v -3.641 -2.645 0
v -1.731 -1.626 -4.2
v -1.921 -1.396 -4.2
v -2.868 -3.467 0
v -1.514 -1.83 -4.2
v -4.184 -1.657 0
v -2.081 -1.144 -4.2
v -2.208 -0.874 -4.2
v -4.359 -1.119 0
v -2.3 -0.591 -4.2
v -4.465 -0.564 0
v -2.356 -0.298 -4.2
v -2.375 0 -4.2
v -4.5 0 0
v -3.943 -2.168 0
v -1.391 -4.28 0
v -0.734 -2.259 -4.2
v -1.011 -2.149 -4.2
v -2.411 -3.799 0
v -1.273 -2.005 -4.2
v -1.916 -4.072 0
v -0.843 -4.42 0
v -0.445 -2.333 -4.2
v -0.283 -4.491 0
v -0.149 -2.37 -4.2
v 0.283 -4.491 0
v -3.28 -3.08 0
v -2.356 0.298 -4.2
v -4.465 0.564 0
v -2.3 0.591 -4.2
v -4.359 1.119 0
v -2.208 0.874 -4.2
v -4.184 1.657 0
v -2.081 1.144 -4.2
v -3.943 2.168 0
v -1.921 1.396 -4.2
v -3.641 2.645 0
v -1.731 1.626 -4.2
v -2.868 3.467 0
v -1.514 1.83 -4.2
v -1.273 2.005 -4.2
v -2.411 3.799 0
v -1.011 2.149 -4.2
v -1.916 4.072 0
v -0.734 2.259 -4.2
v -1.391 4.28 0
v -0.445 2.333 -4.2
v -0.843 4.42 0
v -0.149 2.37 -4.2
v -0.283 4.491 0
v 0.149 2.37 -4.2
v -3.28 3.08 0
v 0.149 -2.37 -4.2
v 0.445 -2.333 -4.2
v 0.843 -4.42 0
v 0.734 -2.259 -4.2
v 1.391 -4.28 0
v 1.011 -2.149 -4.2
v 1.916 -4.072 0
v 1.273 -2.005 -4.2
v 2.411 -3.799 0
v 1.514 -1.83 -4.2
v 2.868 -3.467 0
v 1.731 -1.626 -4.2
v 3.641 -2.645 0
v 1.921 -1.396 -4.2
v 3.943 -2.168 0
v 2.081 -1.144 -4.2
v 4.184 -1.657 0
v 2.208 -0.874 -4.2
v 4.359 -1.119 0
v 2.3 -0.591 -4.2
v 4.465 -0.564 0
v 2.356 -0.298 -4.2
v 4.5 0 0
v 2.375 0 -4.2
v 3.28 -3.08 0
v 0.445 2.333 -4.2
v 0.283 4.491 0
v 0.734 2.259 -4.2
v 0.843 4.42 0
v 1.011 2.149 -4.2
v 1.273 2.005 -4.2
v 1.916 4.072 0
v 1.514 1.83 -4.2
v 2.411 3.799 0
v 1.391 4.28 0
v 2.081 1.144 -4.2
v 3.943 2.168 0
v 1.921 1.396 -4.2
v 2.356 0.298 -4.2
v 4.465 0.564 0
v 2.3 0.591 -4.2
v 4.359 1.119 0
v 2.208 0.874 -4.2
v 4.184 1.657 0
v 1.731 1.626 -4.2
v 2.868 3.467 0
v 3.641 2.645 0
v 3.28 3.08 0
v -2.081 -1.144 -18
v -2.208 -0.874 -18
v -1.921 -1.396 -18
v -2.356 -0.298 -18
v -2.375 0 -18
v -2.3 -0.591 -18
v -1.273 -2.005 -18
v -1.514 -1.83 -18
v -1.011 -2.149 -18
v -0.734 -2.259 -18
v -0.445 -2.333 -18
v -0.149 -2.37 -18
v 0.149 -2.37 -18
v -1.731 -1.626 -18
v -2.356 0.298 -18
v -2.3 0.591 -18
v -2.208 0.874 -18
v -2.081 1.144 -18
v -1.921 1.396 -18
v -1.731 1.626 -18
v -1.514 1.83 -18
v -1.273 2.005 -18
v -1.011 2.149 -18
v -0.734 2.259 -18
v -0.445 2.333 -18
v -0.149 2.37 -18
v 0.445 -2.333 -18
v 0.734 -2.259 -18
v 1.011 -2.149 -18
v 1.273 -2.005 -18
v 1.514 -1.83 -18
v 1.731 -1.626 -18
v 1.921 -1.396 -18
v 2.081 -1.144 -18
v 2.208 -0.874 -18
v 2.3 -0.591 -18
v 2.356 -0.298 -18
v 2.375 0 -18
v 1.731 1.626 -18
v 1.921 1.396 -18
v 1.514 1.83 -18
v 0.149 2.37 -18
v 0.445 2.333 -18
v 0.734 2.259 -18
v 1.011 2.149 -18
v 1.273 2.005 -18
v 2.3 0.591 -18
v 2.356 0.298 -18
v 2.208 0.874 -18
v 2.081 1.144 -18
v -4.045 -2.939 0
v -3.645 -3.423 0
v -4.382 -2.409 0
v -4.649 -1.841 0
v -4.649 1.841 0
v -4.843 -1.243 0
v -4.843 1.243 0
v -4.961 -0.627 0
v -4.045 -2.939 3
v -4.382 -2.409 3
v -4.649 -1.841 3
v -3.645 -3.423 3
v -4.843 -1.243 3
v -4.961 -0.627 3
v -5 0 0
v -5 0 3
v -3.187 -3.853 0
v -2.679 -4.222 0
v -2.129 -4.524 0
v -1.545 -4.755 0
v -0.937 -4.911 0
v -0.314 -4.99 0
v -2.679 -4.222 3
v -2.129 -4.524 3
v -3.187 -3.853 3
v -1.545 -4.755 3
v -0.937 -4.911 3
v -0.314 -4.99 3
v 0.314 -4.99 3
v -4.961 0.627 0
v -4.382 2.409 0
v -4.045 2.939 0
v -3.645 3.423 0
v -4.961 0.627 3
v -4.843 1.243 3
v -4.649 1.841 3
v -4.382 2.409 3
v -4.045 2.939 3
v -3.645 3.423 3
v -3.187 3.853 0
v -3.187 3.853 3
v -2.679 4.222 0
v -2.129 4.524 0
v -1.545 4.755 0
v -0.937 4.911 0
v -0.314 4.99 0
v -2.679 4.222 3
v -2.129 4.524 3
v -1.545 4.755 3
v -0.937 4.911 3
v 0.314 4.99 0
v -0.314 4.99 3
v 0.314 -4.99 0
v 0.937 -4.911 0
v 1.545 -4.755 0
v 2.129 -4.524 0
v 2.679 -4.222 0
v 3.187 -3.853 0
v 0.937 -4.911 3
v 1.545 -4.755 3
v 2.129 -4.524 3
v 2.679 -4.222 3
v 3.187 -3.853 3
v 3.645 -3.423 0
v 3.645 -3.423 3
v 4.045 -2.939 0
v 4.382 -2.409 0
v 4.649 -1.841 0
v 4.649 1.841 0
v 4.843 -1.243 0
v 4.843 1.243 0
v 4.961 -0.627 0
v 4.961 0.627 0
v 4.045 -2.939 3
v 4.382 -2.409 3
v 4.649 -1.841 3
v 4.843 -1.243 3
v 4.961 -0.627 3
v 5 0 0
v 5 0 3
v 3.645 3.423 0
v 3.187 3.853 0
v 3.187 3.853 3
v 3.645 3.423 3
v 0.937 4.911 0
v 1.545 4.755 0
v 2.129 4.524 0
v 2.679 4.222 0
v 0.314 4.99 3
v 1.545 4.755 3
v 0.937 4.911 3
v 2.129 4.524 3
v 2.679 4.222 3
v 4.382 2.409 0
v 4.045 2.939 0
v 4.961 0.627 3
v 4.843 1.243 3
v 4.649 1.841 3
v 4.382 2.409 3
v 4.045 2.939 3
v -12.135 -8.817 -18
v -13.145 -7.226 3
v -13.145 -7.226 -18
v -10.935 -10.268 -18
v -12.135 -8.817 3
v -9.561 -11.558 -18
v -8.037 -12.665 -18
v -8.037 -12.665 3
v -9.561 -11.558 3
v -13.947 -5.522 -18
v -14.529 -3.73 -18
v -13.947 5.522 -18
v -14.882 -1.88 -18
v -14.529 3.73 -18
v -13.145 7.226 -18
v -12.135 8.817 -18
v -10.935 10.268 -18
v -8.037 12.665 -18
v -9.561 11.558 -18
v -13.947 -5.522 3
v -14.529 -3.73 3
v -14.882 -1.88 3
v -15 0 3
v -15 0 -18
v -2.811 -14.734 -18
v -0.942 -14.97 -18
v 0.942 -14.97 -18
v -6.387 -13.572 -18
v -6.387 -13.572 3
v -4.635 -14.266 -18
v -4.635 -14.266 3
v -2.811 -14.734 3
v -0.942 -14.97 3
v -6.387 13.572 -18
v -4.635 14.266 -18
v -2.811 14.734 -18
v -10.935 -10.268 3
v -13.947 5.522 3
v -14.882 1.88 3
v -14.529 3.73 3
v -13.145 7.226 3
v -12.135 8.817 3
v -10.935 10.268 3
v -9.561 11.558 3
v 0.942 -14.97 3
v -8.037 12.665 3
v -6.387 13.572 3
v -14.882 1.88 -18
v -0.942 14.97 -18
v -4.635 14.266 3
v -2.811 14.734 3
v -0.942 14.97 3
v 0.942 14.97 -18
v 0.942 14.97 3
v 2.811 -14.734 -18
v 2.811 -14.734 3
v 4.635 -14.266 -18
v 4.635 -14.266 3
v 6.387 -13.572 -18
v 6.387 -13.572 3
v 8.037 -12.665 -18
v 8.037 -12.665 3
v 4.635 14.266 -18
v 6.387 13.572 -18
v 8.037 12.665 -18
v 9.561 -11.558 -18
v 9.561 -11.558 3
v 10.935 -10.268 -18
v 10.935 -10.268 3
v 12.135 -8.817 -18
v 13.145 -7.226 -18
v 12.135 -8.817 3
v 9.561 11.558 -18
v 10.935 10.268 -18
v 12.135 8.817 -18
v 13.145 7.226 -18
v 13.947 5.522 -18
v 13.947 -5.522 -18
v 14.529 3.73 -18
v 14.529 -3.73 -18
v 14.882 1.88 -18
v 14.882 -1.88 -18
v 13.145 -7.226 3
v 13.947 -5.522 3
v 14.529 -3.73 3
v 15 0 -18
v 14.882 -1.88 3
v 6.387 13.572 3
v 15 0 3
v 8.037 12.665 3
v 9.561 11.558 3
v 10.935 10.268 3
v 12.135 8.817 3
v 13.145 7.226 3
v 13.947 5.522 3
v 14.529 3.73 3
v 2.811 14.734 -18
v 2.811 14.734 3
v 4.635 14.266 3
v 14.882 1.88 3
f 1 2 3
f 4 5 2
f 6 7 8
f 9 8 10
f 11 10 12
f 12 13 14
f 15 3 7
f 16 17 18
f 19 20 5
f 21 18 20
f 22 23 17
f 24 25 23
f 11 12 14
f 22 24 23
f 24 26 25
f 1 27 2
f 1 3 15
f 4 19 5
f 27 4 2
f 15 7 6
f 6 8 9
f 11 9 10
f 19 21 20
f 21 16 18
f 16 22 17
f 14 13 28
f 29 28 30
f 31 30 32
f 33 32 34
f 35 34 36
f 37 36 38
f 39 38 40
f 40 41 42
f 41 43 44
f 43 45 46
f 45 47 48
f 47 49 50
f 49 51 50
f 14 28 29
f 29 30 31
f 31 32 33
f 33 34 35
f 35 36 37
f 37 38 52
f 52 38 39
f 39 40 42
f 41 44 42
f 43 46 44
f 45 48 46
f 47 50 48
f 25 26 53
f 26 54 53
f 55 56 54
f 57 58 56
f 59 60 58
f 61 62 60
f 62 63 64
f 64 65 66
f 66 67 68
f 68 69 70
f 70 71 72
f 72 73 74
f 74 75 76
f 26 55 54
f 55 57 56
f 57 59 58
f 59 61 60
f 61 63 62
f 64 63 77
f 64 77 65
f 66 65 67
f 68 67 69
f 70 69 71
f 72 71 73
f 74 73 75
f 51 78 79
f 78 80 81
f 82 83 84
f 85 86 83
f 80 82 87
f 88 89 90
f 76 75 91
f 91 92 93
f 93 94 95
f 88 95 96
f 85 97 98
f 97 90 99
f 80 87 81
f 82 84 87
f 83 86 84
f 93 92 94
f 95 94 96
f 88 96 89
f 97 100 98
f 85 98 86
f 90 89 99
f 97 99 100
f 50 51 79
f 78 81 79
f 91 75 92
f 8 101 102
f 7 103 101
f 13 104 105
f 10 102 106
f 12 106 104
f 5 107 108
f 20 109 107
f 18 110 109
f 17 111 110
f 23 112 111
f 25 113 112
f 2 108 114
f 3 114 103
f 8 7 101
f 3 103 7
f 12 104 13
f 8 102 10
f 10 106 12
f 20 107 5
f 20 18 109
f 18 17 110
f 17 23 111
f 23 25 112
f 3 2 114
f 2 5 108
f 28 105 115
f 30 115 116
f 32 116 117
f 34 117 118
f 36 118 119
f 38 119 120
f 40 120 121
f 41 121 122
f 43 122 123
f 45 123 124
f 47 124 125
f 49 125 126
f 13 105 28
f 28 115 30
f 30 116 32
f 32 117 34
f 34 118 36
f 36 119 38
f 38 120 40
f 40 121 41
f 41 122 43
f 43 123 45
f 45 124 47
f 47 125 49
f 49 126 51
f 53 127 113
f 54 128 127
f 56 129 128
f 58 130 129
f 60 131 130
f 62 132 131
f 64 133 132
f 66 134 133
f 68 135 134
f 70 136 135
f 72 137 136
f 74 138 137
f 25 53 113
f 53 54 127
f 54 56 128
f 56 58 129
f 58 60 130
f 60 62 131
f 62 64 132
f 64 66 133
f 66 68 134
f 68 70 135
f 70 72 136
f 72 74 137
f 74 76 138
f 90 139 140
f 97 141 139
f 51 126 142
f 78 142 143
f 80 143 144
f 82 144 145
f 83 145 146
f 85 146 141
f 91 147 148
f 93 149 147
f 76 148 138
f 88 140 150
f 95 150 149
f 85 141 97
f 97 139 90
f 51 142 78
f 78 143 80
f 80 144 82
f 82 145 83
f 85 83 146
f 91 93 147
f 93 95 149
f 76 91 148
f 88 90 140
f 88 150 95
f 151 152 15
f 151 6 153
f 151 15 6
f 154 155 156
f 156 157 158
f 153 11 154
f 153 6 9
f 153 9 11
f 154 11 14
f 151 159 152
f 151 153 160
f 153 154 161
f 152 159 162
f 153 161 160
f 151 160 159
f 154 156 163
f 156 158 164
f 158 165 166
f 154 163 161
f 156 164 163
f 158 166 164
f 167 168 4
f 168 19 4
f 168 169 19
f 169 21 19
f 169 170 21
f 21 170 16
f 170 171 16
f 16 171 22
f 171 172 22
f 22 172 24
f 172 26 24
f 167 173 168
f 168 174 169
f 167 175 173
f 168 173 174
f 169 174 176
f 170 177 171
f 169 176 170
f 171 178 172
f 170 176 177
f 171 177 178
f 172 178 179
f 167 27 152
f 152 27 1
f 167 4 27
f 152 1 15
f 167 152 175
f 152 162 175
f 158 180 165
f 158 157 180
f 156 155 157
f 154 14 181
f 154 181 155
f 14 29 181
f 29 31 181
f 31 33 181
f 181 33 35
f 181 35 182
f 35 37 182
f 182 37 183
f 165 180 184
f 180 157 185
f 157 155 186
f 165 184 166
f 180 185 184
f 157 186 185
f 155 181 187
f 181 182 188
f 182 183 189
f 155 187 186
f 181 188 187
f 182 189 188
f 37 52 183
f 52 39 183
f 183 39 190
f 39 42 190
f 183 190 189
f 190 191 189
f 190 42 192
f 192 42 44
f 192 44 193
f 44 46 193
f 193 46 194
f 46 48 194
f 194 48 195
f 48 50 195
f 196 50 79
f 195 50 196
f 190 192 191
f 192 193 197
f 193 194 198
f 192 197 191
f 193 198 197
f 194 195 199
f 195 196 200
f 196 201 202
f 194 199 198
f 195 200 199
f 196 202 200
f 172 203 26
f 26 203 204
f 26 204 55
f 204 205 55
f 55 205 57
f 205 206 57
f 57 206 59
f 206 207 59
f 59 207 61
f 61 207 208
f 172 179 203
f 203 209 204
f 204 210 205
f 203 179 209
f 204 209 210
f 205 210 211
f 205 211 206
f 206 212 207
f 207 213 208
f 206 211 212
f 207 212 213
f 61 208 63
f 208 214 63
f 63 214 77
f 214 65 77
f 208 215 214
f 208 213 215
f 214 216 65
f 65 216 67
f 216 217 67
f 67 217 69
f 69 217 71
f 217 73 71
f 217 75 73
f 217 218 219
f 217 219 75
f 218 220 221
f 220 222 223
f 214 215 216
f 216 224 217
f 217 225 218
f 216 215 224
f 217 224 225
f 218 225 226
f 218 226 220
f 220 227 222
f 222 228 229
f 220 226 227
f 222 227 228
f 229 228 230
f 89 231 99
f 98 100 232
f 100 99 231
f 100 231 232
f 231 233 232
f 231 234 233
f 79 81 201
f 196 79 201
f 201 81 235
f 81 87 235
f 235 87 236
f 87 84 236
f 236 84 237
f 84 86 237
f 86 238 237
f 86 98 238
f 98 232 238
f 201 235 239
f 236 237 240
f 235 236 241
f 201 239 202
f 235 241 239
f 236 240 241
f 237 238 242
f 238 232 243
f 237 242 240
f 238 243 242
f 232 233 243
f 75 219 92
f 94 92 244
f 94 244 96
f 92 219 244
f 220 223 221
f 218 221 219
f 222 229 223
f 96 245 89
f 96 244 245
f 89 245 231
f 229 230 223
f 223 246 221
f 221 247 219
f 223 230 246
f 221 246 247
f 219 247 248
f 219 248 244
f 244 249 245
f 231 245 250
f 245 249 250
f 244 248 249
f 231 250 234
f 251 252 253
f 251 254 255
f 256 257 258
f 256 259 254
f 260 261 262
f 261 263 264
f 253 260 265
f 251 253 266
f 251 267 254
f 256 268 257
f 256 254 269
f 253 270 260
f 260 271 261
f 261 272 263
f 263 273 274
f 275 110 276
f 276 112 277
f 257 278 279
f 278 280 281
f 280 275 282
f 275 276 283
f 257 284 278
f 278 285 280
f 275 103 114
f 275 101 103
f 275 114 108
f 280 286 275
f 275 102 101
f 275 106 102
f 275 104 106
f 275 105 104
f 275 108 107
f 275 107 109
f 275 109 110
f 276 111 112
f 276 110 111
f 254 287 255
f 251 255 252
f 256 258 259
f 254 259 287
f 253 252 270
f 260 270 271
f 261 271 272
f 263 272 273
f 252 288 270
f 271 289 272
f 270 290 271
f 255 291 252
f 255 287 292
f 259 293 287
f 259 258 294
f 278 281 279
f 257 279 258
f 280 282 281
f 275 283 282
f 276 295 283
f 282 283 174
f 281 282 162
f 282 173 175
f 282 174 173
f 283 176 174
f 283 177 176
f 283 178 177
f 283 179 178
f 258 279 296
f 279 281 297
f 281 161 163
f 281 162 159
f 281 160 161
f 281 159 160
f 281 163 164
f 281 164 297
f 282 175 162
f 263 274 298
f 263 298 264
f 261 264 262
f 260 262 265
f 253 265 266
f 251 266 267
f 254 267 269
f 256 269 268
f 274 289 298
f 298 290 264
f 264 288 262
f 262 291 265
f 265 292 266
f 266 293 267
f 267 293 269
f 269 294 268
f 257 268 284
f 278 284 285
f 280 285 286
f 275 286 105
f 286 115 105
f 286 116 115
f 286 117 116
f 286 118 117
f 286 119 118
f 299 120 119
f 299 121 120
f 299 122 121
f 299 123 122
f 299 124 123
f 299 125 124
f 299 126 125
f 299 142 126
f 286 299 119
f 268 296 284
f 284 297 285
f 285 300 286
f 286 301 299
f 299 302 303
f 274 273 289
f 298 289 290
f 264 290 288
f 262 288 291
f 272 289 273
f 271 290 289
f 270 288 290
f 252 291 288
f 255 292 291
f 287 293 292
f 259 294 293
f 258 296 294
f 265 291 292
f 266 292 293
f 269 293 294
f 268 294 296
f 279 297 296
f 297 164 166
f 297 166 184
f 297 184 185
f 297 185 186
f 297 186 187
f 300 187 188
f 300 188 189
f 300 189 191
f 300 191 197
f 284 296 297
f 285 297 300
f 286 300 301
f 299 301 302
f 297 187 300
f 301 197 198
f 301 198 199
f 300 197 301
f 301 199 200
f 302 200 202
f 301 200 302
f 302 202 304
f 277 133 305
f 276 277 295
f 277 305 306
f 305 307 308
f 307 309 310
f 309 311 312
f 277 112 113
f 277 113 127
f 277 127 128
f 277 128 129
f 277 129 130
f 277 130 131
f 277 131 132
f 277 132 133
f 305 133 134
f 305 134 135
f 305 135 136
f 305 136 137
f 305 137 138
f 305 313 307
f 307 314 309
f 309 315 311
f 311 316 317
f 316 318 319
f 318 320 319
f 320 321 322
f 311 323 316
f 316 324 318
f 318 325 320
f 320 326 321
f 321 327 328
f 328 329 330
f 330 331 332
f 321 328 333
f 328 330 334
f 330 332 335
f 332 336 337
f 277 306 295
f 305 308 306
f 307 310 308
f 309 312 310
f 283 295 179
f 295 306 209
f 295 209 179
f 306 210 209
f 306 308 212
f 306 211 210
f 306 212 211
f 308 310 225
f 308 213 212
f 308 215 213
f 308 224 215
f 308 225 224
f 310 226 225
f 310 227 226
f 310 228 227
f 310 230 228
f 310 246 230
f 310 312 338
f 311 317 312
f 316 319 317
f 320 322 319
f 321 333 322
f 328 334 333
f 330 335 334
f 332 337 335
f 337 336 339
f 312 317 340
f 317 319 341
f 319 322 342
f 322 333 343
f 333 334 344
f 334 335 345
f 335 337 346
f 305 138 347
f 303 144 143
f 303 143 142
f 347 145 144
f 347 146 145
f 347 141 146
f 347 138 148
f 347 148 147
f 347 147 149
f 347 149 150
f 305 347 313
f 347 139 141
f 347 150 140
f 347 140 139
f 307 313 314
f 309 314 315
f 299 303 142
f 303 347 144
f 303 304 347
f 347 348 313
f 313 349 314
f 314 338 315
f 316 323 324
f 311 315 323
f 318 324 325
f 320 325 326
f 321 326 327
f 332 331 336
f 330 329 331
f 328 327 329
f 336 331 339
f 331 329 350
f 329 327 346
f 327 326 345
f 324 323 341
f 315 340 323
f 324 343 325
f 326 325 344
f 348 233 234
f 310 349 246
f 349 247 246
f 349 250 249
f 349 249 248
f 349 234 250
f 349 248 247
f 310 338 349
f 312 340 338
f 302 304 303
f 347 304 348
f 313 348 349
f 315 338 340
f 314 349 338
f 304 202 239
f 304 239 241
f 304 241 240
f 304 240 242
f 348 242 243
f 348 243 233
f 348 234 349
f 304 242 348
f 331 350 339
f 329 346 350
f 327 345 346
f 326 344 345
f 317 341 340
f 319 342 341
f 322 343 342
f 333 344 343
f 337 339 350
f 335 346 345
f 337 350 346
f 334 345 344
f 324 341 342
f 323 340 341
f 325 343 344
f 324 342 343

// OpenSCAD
$fn = 50;


difference() {
	union() {
		translate(v = [0, 0, -18.0000000000]) {
			cylinder(h = 21, r = 15.0000000000);
		}
	}
	union() {
		translate(v = [0, 0, 0]) {
			rotate(a = [0, 0, 0]) {
				difference() {
					union() {
						translate(v = [0, 0, -21.0000000000]) {
							cylinder(h = 21, r = 2.2500000000);
						}
						translate(v = [0, 0, -4.2000000000]) {
							cylinder(h = 4.2000000000, r1 = 2.3750000000, r2 = 4.5000000000);
						}
						translate(v = [0, 0, -21.0000000000]) {
							cylinder(h = 21, r = 2.3750000000);
						}
						translate(v = [0, 0, -21.0000000000]) {
							cylinder(h = 21, r = 2.2500000000);
						}
					}
					union();
				}
			}
		}
		#cylinder(h = 3, r = 5.0000000000);
	}
}
